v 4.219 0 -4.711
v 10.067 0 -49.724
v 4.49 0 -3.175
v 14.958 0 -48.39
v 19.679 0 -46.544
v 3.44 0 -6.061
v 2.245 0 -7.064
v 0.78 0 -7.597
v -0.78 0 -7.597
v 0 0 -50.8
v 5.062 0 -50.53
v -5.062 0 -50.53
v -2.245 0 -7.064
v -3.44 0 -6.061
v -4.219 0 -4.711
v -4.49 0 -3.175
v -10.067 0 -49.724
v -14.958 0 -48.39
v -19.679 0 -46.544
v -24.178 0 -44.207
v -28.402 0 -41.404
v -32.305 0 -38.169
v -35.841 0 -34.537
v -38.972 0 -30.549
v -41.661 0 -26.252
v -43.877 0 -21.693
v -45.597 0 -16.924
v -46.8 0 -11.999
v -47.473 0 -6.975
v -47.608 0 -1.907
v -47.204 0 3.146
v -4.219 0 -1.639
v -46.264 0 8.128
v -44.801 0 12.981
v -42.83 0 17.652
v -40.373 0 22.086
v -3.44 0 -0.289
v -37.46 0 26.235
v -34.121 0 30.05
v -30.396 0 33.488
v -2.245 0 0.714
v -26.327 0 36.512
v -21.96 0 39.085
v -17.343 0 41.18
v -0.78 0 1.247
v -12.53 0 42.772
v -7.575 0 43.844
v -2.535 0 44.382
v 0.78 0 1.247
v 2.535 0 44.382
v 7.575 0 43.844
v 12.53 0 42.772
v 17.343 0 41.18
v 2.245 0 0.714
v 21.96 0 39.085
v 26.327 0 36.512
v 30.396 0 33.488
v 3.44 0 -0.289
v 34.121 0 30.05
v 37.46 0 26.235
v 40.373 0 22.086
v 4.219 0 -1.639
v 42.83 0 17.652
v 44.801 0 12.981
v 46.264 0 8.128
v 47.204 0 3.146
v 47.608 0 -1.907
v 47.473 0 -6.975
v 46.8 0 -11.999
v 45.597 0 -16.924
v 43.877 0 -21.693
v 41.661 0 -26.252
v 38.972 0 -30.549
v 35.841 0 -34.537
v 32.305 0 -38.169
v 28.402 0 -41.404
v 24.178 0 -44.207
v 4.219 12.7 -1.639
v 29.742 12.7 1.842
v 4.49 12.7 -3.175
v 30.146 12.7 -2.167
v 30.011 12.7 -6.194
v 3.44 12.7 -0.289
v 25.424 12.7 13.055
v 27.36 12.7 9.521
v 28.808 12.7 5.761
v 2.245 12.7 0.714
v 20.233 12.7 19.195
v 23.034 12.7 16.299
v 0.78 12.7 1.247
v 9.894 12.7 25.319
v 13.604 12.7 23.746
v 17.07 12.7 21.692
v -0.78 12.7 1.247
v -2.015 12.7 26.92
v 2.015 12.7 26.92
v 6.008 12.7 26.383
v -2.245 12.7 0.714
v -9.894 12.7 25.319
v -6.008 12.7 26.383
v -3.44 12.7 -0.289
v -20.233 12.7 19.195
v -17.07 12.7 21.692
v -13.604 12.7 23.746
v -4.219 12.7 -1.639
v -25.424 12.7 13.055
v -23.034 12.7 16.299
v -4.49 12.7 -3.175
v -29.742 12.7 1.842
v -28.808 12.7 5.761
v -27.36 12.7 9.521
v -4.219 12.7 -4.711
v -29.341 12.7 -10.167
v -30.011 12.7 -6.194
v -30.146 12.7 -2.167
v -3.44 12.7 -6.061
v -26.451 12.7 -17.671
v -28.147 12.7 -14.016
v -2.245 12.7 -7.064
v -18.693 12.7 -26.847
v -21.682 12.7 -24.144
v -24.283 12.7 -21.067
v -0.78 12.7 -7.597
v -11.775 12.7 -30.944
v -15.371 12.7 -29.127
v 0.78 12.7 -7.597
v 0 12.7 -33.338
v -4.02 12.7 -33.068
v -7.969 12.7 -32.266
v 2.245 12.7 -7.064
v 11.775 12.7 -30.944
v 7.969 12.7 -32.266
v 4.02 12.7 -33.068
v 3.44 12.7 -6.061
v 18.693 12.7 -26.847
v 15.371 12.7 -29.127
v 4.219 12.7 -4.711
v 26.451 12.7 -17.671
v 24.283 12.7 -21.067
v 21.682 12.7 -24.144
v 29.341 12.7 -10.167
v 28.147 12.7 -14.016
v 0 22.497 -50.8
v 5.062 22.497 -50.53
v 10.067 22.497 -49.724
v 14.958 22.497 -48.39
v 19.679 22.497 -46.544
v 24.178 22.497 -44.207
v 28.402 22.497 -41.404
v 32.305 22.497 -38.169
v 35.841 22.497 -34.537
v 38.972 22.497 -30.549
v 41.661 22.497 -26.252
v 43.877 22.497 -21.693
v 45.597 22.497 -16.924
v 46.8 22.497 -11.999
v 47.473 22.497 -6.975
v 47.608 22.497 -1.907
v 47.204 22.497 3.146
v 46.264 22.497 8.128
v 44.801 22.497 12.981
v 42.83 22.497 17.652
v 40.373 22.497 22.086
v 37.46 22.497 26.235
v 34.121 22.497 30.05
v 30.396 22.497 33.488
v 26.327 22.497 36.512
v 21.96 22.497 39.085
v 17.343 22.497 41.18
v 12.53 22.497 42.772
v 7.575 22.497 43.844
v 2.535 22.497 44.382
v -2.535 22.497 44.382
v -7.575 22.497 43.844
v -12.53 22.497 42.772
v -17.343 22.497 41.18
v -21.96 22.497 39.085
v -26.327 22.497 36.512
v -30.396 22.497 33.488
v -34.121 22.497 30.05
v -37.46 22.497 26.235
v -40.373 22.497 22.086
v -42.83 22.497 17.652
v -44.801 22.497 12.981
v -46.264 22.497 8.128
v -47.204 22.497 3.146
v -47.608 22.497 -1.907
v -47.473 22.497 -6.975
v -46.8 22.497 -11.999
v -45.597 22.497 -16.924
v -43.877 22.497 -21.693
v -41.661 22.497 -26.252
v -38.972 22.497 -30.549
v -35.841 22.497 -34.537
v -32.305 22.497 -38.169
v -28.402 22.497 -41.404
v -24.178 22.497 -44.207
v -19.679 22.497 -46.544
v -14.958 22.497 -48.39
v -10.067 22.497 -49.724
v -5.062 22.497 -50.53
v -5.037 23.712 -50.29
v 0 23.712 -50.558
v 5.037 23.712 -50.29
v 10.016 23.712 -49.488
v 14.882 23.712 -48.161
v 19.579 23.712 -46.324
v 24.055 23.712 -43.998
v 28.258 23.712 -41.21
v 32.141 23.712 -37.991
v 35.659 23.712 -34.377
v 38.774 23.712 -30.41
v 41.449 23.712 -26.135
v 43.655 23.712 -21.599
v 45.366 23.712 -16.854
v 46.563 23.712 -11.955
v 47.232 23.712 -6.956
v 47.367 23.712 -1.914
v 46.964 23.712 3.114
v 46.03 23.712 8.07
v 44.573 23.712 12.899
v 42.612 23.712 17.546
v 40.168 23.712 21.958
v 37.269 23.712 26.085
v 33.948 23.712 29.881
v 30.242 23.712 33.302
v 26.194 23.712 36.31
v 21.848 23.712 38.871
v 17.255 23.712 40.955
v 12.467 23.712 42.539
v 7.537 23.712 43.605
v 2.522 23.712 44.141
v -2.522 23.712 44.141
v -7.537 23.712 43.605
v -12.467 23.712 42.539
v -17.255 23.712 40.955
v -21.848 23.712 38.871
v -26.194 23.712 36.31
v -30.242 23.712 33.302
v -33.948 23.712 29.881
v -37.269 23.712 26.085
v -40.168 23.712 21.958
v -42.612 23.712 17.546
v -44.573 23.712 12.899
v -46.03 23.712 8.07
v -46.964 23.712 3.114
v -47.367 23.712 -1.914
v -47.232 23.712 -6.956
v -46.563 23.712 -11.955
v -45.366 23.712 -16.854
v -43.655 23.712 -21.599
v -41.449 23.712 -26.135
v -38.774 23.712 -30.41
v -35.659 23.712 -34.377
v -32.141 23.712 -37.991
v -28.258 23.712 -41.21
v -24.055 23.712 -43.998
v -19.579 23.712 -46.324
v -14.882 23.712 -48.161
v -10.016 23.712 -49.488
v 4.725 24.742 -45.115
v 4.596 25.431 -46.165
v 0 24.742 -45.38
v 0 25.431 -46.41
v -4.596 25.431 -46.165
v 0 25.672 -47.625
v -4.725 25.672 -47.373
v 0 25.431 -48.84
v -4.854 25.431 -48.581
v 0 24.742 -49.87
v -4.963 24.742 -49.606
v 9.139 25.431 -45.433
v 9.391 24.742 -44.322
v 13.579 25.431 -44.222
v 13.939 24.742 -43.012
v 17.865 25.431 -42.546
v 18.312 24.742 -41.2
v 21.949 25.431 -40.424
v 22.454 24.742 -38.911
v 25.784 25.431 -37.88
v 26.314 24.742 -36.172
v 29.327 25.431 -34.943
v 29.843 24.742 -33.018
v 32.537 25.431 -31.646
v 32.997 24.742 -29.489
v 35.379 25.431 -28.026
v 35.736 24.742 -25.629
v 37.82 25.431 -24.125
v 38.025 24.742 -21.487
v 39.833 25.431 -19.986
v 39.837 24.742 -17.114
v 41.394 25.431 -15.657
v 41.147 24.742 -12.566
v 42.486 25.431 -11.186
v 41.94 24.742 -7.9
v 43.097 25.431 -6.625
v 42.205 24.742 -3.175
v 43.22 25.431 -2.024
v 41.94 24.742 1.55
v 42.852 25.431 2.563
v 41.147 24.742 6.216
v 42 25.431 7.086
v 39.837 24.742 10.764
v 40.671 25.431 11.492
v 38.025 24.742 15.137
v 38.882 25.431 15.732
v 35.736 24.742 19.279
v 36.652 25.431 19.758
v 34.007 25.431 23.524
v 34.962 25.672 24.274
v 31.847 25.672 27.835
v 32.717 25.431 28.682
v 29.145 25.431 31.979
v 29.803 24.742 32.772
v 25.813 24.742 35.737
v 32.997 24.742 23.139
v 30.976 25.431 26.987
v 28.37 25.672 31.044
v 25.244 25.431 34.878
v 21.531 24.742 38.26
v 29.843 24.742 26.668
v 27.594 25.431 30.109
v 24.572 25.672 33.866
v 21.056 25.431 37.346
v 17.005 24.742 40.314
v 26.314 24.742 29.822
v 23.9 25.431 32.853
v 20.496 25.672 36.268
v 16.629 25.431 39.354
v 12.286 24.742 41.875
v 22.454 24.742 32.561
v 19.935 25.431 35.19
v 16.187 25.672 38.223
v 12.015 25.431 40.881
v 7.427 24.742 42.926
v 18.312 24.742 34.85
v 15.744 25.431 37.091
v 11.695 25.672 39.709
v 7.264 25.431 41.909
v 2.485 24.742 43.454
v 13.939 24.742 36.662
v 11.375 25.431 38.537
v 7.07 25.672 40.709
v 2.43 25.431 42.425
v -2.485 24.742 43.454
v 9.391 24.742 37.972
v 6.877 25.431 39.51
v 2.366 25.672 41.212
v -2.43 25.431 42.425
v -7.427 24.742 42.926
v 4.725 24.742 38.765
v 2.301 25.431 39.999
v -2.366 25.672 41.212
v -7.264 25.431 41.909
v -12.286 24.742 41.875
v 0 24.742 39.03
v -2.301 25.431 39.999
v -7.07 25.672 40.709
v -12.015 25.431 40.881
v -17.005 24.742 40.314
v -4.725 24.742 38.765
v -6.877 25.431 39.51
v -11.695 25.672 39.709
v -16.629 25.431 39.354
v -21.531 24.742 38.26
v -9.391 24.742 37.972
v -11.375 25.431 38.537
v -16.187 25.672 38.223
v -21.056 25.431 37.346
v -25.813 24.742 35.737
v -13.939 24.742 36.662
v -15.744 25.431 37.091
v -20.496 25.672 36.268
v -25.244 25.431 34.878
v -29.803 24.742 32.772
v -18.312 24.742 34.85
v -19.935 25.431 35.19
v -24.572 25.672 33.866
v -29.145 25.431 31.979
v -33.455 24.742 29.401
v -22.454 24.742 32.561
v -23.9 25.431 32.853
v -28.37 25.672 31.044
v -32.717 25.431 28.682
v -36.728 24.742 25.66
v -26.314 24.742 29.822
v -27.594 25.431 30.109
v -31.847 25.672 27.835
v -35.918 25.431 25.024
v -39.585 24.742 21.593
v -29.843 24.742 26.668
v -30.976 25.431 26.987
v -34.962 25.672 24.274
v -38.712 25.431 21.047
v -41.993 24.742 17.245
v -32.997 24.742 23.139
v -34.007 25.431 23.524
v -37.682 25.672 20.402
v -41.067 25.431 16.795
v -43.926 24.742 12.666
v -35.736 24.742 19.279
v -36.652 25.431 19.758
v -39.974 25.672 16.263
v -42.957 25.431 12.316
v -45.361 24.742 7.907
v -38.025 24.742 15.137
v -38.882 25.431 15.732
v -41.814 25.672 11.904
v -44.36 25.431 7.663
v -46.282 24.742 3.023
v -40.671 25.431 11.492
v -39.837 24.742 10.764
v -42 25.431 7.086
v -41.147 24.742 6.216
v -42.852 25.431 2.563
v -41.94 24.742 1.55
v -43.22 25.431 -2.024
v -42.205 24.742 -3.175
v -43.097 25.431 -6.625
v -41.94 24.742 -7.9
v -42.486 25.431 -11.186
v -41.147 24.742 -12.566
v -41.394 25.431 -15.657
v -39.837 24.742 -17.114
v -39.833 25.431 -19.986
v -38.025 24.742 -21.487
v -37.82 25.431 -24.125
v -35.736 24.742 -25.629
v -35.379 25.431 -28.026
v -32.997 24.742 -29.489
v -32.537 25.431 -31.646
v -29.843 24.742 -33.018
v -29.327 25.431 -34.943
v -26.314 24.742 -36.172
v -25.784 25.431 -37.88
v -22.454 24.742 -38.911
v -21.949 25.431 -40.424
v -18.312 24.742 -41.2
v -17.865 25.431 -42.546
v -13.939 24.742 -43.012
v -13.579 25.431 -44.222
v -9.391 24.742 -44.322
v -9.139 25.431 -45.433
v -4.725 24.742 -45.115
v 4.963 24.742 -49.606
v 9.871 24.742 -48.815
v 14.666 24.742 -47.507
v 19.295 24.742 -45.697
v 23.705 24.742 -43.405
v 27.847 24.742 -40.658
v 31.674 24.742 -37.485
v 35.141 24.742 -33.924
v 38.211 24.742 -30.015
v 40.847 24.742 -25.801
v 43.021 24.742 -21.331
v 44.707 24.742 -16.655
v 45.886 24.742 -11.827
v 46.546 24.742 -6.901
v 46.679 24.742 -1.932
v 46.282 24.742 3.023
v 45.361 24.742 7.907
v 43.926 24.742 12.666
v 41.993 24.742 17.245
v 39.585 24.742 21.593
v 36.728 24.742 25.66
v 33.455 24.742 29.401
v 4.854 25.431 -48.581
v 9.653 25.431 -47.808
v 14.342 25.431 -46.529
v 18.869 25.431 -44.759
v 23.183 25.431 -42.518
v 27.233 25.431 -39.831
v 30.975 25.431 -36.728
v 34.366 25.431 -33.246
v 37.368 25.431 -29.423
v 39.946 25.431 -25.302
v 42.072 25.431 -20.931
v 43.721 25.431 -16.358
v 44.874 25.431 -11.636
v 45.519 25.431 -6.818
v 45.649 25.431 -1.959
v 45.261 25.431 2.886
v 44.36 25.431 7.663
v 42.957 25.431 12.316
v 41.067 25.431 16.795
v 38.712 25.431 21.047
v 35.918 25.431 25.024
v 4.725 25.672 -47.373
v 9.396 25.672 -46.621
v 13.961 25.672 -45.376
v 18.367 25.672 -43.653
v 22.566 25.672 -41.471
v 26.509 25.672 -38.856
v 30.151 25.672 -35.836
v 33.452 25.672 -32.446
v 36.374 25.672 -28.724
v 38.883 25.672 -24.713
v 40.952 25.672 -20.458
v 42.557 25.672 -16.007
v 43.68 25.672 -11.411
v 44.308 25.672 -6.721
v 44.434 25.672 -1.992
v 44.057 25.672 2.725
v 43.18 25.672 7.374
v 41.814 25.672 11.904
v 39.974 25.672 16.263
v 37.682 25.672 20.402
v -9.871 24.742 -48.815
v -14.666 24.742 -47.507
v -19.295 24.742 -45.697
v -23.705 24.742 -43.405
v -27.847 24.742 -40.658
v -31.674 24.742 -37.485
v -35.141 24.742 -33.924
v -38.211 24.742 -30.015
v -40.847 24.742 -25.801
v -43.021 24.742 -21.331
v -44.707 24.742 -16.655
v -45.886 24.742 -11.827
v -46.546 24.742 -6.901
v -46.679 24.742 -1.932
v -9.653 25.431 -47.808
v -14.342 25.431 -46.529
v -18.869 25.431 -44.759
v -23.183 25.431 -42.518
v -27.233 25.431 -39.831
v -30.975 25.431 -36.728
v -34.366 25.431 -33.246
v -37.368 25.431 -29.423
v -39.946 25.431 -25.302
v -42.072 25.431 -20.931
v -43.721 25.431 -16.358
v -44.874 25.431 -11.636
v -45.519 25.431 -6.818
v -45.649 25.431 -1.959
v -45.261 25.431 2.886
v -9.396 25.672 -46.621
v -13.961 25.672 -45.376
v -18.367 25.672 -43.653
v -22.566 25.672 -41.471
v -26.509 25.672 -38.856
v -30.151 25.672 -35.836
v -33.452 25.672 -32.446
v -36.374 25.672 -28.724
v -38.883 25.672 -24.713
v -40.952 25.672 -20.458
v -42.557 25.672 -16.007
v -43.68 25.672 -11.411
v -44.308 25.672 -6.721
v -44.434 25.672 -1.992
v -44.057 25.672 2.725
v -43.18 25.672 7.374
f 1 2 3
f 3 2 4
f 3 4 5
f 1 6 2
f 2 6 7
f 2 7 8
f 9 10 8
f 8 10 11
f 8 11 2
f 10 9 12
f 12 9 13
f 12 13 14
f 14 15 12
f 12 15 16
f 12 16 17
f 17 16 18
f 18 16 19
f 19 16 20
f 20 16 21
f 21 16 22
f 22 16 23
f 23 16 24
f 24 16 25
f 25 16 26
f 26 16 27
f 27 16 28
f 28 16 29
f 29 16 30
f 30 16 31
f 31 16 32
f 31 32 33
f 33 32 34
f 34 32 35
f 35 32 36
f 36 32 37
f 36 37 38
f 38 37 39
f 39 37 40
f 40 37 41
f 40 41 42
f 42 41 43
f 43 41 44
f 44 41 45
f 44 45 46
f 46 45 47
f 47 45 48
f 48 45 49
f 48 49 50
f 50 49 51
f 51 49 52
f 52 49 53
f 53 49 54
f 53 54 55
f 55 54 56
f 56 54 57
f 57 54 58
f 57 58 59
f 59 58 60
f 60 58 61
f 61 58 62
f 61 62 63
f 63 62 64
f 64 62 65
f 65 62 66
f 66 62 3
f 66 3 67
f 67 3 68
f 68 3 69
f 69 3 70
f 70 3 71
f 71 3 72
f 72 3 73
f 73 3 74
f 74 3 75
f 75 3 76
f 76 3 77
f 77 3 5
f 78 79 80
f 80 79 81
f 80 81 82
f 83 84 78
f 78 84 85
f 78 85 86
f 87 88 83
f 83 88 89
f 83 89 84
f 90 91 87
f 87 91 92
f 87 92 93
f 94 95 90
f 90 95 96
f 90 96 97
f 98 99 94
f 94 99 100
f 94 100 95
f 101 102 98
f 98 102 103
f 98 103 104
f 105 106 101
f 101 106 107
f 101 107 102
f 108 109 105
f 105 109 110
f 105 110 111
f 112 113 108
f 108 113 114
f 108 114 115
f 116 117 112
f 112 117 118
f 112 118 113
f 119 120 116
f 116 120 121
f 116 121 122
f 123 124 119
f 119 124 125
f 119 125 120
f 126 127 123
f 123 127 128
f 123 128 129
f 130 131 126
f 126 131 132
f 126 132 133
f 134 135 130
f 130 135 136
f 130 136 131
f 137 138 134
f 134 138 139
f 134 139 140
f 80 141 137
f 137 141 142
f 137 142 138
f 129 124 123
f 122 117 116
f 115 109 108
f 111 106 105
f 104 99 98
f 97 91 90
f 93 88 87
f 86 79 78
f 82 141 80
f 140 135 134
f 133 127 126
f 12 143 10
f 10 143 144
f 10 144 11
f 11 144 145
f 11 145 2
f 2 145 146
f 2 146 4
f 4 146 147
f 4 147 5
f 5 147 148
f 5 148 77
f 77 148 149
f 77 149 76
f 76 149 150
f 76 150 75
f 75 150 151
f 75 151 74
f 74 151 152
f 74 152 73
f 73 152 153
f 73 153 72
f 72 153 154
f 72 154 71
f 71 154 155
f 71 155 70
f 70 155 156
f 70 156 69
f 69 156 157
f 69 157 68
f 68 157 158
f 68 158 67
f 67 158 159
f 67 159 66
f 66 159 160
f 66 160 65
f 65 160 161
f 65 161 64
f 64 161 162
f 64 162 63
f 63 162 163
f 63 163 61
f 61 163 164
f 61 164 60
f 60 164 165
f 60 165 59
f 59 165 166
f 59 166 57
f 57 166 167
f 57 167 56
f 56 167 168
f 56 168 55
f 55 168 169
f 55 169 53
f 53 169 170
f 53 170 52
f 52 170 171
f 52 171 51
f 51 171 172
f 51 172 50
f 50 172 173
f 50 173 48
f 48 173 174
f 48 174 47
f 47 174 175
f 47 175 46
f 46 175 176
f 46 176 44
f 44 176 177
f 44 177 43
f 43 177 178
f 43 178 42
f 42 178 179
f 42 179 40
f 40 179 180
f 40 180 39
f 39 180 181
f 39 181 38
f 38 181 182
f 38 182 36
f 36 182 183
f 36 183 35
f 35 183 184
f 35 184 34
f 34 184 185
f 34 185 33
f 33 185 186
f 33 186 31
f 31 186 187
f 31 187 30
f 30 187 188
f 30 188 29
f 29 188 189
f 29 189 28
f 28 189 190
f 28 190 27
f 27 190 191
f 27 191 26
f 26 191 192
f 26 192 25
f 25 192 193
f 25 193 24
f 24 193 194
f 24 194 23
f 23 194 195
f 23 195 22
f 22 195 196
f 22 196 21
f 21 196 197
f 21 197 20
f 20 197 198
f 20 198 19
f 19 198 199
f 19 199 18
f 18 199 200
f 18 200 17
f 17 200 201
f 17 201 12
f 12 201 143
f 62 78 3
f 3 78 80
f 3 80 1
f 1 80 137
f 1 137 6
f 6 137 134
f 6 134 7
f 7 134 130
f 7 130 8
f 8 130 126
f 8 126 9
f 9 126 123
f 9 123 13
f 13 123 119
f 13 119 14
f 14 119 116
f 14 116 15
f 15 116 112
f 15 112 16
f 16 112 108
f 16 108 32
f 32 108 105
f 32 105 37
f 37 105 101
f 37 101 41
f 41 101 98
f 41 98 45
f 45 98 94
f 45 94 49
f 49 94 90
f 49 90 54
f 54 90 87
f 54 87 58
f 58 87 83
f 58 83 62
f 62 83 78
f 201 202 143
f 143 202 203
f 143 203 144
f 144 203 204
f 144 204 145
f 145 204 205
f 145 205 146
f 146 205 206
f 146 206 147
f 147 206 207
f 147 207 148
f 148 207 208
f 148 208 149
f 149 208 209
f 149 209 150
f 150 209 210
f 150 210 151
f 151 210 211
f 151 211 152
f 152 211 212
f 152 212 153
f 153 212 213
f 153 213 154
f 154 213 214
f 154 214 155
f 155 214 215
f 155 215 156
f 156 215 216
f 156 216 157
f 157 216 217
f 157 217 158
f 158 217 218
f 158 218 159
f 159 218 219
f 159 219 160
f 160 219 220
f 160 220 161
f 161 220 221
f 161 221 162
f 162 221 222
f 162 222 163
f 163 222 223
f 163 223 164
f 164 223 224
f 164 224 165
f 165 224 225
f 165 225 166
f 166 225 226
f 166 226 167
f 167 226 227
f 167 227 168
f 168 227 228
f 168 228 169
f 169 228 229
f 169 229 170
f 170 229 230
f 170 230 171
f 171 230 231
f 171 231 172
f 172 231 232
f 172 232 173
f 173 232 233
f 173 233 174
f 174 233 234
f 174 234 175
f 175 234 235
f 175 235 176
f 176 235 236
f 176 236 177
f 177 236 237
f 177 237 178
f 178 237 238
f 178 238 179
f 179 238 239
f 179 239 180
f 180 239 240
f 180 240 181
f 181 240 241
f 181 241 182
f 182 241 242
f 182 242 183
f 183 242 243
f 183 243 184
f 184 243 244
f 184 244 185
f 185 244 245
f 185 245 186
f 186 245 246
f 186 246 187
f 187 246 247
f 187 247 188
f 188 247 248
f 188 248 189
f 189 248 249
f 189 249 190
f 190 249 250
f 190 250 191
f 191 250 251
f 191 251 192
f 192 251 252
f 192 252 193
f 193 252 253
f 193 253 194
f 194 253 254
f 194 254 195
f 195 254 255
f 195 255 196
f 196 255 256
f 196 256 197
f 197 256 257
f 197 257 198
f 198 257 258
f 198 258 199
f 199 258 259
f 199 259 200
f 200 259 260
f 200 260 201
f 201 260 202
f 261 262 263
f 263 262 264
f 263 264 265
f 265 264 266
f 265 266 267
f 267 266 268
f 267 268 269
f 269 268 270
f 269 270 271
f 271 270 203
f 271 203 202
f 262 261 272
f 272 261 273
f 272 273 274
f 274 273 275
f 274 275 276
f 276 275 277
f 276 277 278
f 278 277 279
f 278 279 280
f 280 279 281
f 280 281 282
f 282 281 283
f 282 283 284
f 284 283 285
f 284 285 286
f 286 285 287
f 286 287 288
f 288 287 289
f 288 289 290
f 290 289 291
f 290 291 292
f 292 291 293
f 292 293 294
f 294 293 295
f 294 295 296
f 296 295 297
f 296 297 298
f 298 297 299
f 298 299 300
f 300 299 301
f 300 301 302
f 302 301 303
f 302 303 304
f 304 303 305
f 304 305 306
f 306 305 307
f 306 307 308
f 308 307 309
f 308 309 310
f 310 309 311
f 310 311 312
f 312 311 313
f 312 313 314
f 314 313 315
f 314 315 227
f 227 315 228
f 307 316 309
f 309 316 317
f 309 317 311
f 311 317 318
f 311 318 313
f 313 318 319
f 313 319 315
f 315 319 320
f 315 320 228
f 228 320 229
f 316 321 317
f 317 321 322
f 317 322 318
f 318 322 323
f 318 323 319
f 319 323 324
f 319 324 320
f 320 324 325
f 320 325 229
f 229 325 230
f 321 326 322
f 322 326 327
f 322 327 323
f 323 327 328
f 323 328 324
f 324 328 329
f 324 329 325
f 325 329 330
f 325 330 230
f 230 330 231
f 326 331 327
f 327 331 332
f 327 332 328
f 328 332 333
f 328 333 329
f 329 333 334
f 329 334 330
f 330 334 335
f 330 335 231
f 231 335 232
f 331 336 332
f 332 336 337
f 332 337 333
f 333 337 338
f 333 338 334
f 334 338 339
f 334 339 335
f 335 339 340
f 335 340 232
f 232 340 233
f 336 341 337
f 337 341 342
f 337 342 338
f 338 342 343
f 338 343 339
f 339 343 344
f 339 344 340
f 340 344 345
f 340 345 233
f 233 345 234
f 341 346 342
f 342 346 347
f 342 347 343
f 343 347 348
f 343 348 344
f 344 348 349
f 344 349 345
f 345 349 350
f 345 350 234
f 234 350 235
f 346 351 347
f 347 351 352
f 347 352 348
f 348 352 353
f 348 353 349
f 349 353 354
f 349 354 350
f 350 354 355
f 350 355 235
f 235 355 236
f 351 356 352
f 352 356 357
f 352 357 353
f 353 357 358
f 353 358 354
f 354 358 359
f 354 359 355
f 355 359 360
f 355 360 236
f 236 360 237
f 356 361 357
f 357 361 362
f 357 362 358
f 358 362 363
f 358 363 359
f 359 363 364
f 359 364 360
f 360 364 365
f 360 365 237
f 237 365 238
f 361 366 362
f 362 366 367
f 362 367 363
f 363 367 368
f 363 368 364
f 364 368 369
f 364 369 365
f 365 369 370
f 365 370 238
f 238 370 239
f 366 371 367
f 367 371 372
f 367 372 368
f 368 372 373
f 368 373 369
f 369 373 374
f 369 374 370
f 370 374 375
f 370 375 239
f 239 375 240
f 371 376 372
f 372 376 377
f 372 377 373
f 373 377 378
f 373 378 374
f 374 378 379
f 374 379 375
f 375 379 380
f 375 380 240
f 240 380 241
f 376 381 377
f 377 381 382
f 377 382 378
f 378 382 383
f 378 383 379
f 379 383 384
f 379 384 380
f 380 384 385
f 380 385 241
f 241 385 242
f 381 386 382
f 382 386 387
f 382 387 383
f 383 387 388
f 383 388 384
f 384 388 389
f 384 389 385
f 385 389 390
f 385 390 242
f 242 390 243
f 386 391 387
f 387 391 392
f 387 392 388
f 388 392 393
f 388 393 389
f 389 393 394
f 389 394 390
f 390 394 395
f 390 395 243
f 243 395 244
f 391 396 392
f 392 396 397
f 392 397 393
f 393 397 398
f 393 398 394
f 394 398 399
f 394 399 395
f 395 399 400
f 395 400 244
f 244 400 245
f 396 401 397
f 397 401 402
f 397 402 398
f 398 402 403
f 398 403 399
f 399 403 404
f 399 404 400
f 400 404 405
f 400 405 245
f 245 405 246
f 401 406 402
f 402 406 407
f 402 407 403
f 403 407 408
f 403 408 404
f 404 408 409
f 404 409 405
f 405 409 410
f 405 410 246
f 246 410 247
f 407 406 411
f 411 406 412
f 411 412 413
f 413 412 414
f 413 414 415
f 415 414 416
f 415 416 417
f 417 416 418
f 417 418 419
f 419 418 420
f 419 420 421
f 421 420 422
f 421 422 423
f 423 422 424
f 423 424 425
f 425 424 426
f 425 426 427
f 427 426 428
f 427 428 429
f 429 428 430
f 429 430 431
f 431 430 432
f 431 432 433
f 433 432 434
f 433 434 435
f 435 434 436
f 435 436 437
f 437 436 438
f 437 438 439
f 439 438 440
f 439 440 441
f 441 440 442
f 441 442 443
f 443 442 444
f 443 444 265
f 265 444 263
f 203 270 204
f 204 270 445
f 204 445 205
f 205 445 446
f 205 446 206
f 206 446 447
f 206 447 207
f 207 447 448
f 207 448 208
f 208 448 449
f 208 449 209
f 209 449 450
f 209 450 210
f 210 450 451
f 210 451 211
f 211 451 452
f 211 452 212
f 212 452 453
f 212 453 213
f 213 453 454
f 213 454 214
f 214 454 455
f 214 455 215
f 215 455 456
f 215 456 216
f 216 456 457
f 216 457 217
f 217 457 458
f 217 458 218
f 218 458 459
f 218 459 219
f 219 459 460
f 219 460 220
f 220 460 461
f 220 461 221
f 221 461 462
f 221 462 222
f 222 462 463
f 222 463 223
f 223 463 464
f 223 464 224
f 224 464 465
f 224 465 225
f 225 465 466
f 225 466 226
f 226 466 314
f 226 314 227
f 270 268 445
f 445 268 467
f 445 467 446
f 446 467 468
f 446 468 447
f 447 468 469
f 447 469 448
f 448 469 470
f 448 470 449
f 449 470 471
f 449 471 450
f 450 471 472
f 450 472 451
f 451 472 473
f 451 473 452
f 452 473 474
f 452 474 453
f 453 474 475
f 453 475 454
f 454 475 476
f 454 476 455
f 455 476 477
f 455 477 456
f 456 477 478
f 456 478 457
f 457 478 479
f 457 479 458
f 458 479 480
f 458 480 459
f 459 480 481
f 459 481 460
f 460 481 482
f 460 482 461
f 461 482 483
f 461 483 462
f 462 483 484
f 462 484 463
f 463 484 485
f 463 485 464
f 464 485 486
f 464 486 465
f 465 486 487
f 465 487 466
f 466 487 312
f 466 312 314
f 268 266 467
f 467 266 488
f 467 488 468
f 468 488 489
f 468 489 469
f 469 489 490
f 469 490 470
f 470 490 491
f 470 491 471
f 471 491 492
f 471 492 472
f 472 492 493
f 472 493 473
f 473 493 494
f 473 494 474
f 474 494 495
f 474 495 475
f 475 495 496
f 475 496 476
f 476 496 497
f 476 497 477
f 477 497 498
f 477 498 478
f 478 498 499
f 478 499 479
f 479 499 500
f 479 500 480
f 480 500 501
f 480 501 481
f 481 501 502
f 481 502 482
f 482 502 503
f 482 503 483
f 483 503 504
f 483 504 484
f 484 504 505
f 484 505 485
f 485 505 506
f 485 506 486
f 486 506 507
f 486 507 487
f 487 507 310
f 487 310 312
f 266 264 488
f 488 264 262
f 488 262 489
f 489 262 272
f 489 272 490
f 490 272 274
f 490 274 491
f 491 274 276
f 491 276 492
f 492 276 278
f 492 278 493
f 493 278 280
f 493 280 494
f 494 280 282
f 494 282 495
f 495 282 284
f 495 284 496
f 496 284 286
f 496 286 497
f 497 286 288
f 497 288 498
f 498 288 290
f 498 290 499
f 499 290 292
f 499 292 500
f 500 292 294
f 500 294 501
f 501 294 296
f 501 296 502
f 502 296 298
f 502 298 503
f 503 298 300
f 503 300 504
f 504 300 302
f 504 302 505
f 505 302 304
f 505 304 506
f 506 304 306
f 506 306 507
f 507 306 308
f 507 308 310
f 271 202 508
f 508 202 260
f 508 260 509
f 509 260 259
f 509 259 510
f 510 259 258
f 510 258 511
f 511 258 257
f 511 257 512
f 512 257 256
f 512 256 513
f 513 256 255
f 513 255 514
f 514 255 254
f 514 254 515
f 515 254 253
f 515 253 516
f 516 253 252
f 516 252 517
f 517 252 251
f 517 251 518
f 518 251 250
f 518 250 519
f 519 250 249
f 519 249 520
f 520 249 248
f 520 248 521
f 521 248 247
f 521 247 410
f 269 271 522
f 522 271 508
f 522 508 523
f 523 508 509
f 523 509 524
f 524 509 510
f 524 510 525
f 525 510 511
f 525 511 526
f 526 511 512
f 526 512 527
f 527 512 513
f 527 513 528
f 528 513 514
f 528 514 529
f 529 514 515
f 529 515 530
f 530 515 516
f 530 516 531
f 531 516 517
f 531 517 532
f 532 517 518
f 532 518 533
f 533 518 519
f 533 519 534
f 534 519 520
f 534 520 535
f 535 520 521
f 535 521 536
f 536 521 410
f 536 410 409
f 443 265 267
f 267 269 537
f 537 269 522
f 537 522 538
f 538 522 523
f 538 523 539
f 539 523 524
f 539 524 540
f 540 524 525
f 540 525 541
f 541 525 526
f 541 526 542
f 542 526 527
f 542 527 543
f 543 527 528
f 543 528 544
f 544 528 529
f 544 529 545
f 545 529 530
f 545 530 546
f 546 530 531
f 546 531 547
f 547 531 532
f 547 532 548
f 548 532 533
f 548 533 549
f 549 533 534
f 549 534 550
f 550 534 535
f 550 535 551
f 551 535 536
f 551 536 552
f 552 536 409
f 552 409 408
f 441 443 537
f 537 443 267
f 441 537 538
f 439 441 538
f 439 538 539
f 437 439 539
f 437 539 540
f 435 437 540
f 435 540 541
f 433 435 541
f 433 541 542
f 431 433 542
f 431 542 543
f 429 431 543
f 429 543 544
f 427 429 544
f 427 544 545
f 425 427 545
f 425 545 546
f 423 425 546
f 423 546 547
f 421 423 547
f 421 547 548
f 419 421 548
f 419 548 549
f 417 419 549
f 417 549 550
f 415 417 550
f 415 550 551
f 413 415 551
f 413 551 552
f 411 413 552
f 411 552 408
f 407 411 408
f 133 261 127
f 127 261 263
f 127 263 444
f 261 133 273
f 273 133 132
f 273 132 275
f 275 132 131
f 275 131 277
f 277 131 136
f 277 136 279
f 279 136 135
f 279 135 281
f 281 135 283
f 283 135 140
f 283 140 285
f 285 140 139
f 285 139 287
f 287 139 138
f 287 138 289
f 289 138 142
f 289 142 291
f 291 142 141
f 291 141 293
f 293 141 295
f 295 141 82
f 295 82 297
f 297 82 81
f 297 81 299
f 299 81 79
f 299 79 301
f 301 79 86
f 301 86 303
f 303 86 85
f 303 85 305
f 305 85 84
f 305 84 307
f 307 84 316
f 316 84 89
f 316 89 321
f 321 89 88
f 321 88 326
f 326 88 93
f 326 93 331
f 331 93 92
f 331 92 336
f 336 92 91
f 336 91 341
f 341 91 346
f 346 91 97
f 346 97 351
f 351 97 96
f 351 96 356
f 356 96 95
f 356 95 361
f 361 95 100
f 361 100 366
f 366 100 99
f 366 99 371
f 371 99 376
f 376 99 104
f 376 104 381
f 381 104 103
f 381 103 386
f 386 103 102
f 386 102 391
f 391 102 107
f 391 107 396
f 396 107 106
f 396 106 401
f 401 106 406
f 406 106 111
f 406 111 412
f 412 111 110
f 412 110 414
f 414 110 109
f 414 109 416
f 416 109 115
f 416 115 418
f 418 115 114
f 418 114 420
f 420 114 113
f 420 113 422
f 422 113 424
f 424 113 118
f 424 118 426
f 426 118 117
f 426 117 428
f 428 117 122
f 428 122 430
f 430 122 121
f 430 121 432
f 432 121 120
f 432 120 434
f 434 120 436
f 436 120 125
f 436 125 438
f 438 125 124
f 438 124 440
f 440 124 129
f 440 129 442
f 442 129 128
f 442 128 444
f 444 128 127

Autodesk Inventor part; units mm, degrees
ref_plane "YZ Plane" through (0, 0, 0) normal (1, 0, 0) x (0, 1, 0)
ref_plane "XZ Plane" through (0, 0, 0) normal (0, 1, 0) x (-1, 0, 0)
ref_plane "XY Plane" through (0, 0, 0) normal (0, 0, 1) x (1, 0, 0)
sketch "Sketch1" plane through (0, 0, 0) normal (0, 1, 0) x (-1, 0, 0)
  circle A0 centre (0, 0) radius 33.3375
  dimension "d0" = 66.675
extrude "Extrusion1" add sketch "Sketch1" along normal blind 12.7
sketch "Sketch2" plane through (0, 12.7, 0) normal (0, 1, 0) x (1, 0, 0)
  line L0 (0, 0) -> (-3.175, 0)
  line L1 (-3.175, 0) -> (-3.175, 3.175)
  line L2 (-3.175, 3.175) -> (0, 3.175)
  line L3 (0, 3.175) -> (0, 0)
  dimension "d3" = 3.175
  dimension "d4" = 3.175
extrude "Extrusion2" cut sketch "Sketch2" against normal blind 12.7
sketch "Sketch3" plane through (0, 12.7, -3.175) normal (-1, 0, 0) x (0, 0, 1)
  line L0 (36.5125, 0) -> (-30.1625, 0) projected
  line L1 (36.5125, -12.7) -> (-30.1625, -12.7) projected
  line L2 (0, 0) -> (0, -12.7) projected
  line L3 (3.175, 0) -> (3.175, -12.7) projected
  line L4 (3.175, 0) -> (-47.625, 0)
  line L5 (-30.1625, 0) -> (-47.625, 17.4625)
  line L6 (-30.1625, 0) -> (-5.4668, 0) construction
  line L7 (-47.625, 17.4625) -> (-47.625, -12.7)
  line L8 (36.5125, 0) -> (-30.1625, 0) projected
  line L9 (-47.625, -12.7) -> (-30.1625, -12.7)
  line L10 (-30.1625, 0) -> (-30.1625, -12.7)
  line L11 (-30.1625, -12.7) -> (-30.1625, 0) projected
  line L12 (0, 0) -> (0, 32.402)
  dimension "d8" = 50.8
  dimension "d9" = 135
revolve "Revolution1" add sketch "Sketch3" angle 360 about axis through (0, 12.7, -3.175) along (0, 1, 0) contours L10 L9 L7 L4 | L4 L7 L5
fillet "Fillet1" radius 3.175 1 edges at (0, 30.1625, 44.45)
sketch "Sketch4" plane through (0, 12.7, -3.175) normal (0, 1, 0) x (1, 0, 0)
  line L0 (0, 0) -> (-3.175, 0) projected
  circle A0 centre (0, 0) radius 4.4901
  point P0 (0, -3.175)
extrude "Extrusion3" cut sketch "Sketch4" against normal blind 12.7
